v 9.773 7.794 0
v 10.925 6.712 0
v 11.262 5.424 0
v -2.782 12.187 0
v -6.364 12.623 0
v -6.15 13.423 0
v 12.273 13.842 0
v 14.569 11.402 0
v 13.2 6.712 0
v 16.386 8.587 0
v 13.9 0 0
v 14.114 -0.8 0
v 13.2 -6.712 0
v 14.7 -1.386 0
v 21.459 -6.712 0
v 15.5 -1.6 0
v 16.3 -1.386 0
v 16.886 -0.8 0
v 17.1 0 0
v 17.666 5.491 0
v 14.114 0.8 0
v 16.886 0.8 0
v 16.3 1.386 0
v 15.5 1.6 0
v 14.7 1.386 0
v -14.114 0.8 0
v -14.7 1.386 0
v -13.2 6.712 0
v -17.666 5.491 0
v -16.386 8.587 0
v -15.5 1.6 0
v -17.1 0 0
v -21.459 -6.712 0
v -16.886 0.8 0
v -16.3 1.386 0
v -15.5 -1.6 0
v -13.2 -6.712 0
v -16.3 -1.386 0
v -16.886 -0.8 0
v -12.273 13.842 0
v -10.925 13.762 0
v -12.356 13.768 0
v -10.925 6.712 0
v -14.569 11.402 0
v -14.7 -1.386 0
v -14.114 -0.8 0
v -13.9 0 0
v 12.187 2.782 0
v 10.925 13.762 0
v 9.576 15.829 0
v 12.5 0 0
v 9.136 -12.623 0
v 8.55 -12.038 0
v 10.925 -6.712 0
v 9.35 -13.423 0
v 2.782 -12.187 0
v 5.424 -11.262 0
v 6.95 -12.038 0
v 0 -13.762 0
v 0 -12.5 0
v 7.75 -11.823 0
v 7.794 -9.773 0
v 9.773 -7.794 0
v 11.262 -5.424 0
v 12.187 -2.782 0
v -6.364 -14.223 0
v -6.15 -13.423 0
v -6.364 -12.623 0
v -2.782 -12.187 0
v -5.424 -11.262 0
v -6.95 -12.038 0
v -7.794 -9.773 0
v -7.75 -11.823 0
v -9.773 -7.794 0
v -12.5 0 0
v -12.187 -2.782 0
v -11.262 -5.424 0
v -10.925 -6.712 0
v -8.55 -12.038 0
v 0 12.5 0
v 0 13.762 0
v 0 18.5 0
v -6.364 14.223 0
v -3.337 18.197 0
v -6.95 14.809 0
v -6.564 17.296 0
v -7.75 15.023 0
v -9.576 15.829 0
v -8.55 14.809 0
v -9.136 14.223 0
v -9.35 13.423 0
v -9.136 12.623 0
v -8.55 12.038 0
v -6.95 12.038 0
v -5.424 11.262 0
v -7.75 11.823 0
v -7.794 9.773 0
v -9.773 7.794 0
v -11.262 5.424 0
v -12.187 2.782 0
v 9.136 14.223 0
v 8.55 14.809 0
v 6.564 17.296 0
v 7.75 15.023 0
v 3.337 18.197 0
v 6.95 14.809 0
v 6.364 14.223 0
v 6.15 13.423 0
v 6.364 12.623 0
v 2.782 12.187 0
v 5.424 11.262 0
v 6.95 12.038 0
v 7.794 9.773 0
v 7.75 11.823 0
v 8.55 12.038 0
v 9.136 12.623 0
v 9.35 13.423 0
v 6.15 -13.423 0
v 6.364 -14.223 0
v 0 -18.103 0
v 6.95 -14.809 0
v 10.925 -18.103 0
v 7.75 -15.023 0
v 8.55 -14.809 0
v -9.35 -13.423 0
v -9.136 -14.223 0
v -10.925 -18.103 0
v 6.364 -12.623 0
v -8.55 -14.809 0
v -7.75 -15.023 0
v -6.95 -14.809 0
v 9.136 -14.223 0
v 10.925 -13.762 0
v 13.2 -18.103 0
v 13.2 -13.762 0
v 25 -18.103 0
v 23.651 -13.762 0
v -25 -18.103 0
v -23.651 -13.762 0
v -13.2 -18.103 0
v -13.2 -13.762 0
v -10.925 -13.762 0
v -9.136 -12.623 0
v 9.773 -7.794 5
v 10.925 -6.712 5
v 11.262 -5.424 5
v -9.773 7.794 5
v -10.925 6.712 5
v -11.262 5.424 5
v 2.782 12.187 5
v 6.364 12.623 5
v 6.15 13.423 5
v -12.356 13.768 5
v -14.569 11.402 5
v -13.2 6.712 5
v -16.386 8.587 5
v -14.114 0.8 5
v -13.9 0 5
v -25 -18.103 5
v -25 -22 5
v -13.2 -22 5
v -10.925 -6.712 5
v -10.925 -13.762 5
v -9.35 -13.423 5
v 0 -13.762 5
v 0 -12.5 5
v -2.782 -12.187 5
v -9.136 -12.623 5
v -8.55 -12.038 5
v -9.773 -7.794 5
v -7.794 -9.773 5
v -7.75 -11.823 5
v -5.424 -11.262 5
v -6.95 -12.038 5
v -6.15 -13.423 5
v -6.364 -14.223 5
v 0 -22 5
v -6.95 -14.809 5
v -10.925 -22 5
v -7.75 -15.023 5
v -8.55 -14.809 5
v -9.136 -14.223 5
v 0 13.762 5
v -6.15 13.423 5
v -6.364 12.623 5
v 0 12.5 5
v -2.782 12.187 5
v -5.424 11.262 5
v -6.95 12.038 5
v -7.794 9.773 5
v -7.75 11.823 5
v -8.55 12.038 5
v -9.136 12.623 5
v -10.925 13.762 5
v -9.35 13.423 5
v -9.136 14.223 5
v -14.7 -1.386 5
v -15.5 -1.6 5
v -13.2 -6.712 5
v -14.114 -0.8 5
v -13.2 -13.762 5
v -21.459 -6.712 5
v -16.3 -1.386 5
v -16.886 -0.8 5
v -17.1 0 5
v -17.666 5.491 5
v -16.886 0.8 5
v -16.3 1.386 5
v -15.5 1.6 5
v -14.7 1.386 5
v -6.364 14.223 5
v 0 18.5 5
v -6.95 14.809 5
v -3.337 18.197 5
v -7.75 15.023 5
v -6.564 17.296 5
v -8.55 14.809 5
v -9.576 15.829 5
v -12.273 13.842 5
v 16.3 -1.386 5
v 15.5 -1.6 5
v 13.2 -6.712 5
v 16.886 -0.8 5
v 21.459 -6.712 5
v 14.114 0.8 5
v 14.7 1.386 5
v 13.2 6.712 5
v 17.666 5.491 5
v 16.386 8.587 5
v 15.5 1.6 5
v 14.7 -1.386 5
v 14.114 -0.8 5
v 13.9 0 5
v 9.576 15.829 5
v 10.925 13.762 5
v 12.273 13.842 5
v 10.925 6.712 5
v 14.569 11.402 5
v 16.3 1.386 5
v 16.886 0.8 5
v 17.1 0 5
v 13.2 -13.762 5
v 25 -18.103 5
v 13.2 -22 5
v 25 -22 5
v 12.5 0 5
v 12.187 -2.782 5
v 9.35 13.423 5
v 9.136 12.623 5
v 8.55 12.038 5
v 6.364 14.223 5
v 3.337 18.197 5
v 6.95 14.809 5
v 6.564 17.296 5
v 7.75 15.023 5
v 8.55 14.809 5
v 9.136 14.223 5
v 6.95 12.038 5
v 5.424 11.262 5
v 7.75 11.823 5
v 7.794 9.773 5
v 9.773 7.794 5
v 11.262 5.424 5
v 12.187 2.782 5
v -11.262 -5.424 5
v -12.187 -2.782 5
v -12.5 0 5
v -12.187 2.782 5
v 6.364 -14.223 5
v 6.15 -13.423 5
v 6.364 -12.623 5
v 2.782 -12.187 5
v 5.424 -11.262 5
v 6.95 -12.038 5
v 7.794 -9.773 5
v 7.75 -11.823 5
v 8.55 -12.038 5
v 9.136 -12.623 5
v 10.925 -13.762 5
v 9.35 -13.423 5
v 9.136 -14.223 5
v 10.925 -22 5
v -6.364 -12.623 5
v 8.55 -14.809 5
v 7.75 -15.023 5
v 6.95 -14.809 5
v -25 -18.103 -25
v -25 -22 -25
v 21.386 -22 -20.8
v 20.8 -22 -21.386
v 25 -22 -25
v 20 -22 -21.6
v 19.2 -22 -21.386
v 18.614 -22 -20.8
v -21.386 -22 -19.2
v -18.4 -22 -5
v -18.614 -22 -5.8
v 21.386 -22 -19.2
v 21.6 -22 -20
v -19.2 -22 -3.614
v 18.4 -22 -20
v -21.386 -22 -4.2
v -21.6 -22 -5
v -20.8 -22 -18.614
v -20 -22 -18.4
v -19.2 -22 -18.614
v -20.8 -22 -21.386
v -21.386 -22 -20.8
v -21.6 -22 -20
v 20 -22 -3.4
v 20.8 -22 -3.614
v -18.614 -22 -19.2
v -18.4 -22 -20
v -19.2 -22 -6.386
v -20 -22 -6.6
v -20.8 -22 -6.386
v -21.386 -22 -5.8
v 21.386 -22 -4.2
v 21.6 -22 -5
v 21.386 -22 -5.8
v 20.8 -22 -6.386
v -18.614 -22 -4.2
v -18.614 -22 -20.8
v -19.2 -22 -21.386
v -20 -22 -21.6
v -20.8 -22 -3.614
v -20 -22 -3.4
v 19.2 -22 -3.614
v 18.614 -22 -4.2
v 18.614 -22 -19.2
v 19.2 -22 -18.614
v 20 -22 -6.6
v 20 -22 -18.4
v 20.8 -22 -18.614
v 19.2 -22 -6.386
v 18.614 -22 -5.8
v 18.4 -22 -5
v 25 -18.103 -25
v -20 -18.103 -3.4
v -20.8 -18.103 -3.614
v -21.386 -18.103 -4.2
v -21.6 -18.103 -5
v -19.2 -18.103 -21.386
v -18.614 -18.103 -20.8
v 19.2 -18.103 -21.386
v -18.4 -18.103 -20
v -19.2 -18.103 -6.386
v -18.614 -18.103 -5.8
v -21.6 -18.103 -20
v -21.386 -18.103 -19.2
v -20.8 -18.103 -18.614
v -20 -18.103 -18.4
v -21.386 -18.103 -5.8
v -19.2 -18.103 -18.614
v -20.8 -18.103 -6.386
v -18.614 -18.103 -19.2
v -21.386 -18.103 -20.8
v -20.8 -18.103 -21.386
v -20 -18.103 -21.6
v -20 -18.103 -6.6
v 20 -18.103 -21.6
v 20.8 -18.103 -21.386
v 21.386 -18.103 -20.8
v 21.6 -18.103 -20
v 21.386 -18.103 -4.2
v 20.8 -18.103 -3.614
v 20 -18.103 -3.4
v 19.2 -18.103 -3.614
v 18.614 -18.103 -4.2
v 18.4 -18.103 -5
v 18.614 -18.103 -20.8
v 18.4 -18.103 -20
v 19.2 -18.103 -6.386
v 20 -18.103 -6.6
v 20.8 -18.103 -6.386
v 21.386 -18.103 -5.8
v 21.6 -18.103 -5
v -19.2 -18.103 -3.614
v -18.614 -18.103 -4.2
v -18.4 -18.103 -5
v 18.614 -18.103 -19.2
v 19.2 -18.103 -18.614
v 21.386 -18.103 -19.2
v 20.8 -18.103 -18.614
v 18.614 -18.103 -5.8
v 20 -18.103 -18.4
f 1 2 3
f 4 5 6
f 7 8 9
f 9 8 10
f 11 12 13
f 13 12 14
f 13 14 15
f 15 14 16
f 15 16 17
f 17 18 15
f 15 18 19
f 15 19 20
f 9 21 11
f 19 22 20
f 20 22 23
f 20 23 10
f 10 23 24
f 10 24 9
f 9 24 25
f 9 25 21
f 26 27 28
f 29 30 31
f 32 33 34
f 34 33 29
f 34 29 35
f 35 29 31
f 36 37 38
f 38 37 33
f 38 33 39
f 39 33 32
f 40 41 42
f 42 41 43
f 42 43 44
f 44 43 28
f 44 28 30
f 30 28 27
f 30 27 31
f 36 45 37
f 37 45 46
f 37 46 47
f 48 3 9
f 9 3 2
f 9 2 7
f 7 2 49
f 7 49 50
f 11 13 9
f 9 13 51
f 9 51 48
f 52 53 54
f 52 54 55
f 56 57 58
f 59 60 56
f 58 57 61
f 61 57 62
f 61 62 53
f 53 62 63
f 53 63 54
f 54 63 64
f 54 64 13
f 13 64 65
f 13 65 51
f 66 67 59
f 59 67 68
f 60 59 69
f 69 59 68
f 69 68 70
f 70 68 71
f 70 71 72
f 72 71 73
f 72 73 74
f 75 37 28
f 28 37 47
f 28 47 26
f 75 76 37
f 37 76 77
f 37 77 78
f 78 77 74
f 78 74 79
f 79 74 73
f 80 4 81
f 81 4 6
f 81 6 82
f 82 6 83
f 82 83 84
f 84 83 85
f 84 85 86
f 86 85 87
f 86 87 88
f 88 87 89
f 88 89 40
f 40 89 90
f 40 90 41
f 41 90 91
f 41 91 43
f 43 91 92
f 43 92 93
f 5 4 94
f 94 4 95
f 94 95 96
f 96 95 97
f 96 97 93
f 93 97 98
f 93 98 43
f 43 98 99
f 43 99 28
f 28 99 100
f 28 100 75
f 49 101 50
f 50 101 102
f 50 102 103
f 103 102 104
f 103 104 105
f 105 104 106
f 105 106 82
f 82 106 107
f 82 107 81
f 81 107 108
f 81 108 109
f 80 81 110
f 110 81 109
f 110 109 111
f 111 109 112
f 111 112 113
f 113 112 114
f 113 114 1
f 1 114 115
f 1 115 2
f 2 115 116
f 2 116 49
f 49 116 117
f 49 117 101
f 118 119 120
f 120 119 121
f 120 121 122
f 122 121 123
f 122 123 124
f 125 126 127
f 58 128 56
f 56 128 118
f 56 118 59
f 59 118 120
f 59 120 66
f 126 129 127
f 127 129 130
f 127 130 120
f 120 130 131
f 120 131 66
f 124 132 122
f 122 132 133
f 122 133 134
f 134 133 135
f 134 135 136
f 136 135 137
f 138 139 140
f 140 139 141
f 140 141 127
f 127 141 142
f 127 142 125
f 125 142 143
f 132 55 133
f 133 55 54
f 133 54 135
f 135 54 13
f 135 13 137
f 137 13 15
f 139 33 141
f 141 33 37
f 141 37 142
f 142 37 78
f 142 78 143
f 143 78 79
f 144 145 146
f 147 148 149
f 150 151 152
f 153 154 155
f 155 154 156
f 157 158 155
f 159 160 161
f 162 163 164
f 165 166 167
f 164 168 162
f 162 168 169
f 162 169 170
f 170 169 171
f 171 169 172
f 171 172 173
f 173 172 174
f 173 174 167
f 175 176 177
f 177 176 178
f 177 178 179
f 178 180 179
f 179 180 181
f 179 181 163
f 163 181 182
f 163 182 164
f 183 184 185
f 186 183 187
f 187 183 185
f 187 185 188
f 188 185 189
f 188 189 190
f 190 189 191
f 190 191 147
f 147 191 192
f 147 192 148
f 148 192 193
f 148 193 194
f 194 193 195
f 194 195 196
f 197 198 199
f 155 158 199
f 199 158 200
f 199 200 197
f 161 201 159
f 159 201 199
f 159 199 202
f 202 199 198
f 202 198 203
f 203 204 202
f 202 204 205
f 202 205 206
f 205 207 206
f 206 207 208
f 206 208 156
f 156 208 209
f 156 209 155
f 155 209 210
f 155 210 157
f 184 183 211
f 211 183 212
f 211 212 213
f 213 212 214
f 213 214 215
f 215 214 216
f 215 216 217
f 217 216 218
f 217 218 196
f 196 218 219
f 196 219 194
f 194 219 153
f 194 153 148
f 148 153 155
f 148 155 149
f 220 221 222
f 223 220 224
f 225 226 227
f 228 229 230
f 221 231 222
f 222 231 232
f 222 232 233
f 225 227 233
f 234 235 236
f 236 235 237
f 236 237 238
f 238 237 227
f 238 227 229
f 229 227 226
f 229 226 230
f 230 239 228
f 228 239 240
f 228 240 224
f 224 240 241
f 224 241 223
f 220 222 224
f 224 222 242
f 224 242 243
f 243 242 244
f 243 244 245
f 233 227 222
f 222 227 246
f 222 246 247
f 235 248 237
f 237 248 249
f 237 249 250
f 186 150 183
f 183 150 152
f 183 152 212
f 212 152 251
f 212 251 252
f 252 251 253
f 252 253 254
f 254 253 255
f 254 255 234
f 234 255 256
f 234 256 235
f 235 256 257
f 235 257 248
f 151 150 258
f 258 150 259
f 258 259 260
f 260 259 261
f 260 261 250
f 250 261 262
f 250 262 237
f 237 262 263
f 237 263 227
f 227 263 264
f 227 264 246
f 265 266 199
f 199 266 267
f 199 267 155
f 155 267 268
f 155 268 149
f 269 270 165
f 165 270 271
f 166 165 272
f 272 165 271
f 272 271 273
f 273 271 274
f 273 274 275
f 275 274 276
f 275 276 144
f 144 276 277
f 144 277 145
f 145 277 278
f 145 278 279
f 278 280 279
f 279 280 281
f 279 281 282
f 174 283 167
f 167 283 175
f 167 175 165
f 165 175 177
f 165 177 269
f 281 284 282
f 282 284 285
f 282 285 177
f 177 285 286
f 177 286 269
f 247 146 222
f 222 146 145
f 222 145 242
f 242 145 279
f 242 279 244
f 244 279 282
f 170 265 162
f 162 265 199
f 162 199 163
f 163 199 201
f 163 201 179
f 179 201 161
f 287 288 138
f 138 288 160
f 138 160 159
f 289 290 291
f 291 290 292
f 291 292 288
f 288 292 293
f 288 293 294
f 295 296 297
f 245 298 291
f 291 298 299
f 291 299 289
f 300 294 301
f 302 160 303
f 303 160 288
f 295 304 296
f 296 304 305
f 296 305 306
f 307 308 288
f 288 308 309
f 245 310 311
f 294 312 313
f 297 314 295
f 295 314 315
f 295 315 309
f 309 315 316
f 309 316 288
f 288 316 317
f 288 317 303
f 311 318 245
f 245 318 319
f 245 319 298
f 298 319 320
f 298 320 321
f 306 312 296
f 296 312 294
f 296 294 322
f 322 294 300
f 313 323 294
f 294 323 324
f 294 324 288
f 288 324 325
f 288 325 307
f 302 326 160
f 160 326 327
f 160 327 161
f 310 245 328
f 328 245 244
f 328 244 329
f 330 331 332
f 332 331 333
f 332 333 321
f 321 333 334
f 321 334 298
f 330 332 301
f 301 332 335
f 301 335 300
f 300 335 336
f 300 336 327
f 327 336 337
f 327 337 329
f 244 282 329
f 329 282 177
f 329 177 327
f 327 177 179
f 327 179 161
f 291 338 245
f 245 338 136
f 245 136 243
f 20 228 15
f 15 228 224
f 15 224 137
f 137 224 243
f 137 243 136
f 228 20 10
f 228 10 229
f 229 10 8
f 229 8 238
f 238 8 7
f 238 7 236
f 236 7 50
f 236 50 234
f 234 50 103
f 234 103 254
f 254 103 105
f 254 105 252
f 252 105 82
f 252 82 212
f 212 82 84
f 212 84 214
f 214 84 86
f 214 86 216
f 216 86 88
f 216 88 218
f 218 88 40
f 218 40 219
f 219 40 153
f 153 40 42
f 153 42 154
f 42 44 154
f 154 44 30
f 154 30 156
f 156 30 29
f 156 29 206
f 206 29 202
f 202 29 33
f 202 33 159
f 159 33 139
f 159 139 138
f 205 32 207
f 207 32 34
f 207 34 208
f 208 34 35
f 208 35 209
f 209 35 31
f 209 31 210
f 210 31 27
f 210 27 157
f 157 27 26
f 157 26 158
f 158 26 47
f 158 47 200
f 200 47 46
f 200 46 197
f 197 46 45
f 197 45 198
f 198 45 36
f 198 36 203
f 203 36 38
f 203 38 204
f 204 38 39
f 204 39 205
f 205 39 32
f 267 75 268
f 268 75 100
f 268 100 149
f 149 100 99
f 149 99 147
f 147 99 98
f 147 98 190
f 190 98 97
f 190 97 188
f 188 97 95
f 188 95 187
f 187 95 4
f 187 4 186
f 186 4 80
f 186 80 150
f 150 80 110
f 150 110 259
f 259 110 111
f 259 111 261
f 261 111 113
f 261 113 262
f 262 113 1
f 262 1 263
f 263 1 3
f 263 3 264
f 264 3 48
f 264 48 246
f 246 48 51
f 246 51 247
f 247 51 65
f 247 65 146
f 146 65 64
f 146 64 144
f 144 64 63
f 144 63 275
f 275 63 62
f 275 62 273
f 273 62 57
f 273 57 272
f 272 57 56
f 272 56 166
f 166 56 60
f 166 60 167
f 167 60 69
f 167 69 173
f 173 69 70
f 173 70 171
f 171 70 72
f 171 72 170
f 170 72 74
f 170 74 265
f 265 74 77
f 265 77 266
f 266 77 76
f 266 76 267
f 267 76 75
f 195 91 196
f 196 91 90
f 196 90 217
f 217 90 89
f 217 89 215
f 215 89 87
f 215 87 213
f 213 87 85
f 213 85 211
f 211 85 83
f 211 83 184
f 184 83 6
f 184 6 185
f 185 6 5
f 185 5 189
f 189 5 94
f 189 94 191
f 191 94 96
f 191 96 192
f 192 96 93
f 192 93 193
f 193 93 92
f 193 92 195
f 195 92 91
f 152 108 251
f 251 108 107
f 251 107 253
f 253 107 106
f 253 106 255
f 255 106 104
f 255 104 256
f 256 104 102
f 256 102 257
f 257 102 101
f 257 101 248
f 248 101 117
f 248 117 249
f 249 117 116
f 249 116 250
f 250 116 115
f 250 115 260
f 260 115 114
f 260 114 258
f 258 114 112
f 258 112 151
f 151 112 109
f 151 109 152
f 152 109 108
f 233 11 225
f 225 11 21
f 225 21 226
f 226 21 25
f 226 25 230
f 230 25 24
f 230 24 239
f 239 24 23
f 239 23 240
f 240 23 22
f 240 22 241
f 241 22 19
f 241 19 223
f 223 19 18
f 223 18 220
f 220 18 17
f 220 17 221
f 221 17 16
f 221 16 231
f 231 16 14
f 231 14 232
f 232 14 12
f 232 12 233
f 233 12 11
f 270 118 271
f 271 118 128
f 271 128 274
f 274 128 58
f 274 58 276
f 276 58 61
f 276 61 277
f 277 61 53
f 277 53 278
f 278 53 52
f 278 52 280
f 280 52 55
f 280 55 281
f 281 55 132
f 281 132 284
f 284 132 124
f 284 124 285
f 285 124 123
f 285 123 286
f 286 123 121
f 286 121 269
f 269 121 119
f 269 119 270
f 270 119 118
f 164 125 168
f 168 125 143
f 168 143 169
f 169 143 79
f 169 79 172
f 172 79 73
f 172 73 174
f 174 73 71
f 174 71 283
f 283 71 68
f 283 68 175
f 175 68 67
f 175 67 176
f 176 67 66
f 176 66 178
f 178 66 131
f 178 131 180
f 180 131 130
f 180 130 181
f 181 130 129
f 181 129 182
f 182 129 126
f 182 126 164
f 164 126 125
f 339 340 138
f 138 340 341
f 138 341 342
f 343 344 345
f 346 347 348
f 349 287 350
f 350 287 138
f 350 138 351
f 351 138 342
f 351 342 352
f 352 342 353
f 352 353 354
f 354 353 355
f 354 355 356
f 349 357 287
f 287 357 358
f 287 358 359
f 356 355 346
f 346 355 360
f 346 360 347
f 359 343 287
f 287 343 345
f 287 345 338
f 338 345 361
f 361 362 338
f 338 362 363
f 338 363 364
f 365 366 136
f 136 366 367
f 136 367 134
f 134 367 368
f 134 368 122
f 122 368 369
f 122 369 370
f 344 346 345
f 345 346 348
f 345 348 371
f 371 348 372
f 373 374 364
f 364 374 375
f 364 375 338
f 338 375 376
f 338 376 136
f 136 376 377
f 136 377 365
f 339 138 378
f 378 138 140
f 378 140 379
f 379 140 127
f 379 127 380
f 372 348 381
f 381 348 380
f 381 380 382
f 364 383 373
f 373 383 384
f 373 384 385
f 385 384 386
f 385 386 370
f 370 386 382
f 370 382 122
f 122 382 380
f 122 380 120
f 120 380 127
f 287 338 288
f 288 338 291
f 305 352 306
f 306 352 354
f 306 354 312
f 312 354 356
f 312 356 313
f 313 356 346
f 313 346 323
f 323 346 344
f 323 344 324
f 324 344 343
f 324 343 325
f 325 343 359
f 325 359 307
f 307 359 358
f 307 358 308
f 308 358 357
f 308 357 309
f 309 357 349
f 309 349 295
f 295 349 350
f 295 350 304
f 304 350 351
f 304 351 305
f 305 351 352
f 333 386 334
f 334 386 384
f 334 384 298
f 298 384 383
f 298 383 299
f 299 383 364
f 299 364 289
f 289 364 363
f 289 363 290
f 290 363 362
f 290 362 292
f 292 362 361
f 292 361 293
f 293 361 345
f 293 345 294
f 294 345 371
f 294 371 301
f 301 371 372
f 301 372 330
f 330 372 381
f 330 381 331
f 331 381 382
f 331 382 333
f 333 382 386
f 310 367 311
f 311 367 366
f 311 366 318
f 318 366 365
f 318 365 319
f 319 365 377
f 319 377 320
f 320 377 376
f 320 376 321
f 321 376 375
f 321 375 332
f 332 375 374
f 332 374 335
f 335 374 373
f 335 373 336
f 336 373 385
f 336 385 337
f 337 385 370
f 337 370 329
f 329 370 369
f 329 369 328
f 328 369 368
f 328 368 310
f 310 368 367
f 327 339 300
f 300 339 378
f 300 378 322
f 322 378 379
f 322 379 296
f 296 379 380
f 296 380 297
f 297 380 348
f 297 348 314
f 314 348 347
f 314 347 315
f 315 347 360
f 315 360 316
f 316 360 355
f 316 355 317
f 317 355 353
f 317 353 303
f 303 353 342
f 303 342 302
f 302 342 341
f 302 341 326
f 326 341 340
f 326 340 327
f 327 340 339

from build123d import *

# Parameters (mm, degrees)
SKETCH_1_R          = 1.6
SKETCH_1_R_2        = 12.5
EXTRUDE_1_DEPTH     = 5
SKETCH_2_W          = 50
SKETCH_2_H          = 3.896696611
EXTRUDE_2_DEPTH     = 25
SKETCH_3_R          = 1.6
CUT_EXTRUDE_1_DEPTH = 25


with BuildPart() as part:
    # 草图1 → 凸台-拉伸1 (new body)
    with BuildSketch(Plane.XY):
        with BuildLine():
            Line((-25, -22), (25, -22))
            Line((25, -22), (25, -18.103303389))
            Line((25, -18.103303389), (17.666287953, 5.491108263))
            ThreePointArc((17.666287953, 5.491108263), (0, 18.5), (-17.666287953, 5.491108263))
            Line((-17.666287953, 5.491108263), (-25, -18.103303389))
            Line((-25, -18.103303389), (-25, -22))
        make_face()
        with Locations((-15.5, 0)):
            Circle(SKETCH_1_R, mode=Mode.SUBTRACT)
        with Locations((-7.75, 13.423393759)):
            Circle(SKETCH_1_R, mode=Mode.SUBTRACT)
        with Locations((7.75, 13.423393759)):
            Circle(SKETCH_1_R, mode=Mode.SUBTRACT)
        with Locations((15.5, 0)):
            Circle(SKETCH_1_R, mode=Mode.SUBTRACT)
        with Locations((7.75, -13.423393759)):
            Circle(SKETCH_1_R, mode=Mode.SUBTRACT)
        with Locations((-7.75, -13.423393759)):
            Circle(SKETCH_1_R, mode=Mode.SUBTRACT)
        Circle(SKETCH_1_R_2, mode=Mode.SUBTRACT)
    extrude(amount=EXTRUDE_1_DEPTH)

    # 草图2 → 凸台-拉伸2 (add)
    with BuildSketch(Plane(origin=(0, 0, 0), x_dir=(-1, 0, 0), z_dir=(0, 0, -1))):
        with Locations((0, -20.051651695)):
            Rectangle(SKETCH_2_W, SKETCH_2_H)
    extrude(amount=EXTRUDE_2_DEPTH)

    # 草图3 → 切除-拉伸1 (cut)
    with BuildSketch(Plane(origin=(0, -18.103303389, 0), x_dir=(1, 0, 0), z_dir=(0, 1, 0))):
        with Locations((-20, 20)):
            Circle(SKETCH_3_R)
        with Locations((20, 20)):
            Circle(SKETCH_3_R)
        with Locations((20, 5)):
            Circle(SKETCH_3_R)
        with Locations((-20, 5)):
            Circle(SKETCH_3_R)
    extrude(amount=-CUT_EXTRUDE_1_DEPTH, mode=Mode.SUBTRACT)


solid = part.part
